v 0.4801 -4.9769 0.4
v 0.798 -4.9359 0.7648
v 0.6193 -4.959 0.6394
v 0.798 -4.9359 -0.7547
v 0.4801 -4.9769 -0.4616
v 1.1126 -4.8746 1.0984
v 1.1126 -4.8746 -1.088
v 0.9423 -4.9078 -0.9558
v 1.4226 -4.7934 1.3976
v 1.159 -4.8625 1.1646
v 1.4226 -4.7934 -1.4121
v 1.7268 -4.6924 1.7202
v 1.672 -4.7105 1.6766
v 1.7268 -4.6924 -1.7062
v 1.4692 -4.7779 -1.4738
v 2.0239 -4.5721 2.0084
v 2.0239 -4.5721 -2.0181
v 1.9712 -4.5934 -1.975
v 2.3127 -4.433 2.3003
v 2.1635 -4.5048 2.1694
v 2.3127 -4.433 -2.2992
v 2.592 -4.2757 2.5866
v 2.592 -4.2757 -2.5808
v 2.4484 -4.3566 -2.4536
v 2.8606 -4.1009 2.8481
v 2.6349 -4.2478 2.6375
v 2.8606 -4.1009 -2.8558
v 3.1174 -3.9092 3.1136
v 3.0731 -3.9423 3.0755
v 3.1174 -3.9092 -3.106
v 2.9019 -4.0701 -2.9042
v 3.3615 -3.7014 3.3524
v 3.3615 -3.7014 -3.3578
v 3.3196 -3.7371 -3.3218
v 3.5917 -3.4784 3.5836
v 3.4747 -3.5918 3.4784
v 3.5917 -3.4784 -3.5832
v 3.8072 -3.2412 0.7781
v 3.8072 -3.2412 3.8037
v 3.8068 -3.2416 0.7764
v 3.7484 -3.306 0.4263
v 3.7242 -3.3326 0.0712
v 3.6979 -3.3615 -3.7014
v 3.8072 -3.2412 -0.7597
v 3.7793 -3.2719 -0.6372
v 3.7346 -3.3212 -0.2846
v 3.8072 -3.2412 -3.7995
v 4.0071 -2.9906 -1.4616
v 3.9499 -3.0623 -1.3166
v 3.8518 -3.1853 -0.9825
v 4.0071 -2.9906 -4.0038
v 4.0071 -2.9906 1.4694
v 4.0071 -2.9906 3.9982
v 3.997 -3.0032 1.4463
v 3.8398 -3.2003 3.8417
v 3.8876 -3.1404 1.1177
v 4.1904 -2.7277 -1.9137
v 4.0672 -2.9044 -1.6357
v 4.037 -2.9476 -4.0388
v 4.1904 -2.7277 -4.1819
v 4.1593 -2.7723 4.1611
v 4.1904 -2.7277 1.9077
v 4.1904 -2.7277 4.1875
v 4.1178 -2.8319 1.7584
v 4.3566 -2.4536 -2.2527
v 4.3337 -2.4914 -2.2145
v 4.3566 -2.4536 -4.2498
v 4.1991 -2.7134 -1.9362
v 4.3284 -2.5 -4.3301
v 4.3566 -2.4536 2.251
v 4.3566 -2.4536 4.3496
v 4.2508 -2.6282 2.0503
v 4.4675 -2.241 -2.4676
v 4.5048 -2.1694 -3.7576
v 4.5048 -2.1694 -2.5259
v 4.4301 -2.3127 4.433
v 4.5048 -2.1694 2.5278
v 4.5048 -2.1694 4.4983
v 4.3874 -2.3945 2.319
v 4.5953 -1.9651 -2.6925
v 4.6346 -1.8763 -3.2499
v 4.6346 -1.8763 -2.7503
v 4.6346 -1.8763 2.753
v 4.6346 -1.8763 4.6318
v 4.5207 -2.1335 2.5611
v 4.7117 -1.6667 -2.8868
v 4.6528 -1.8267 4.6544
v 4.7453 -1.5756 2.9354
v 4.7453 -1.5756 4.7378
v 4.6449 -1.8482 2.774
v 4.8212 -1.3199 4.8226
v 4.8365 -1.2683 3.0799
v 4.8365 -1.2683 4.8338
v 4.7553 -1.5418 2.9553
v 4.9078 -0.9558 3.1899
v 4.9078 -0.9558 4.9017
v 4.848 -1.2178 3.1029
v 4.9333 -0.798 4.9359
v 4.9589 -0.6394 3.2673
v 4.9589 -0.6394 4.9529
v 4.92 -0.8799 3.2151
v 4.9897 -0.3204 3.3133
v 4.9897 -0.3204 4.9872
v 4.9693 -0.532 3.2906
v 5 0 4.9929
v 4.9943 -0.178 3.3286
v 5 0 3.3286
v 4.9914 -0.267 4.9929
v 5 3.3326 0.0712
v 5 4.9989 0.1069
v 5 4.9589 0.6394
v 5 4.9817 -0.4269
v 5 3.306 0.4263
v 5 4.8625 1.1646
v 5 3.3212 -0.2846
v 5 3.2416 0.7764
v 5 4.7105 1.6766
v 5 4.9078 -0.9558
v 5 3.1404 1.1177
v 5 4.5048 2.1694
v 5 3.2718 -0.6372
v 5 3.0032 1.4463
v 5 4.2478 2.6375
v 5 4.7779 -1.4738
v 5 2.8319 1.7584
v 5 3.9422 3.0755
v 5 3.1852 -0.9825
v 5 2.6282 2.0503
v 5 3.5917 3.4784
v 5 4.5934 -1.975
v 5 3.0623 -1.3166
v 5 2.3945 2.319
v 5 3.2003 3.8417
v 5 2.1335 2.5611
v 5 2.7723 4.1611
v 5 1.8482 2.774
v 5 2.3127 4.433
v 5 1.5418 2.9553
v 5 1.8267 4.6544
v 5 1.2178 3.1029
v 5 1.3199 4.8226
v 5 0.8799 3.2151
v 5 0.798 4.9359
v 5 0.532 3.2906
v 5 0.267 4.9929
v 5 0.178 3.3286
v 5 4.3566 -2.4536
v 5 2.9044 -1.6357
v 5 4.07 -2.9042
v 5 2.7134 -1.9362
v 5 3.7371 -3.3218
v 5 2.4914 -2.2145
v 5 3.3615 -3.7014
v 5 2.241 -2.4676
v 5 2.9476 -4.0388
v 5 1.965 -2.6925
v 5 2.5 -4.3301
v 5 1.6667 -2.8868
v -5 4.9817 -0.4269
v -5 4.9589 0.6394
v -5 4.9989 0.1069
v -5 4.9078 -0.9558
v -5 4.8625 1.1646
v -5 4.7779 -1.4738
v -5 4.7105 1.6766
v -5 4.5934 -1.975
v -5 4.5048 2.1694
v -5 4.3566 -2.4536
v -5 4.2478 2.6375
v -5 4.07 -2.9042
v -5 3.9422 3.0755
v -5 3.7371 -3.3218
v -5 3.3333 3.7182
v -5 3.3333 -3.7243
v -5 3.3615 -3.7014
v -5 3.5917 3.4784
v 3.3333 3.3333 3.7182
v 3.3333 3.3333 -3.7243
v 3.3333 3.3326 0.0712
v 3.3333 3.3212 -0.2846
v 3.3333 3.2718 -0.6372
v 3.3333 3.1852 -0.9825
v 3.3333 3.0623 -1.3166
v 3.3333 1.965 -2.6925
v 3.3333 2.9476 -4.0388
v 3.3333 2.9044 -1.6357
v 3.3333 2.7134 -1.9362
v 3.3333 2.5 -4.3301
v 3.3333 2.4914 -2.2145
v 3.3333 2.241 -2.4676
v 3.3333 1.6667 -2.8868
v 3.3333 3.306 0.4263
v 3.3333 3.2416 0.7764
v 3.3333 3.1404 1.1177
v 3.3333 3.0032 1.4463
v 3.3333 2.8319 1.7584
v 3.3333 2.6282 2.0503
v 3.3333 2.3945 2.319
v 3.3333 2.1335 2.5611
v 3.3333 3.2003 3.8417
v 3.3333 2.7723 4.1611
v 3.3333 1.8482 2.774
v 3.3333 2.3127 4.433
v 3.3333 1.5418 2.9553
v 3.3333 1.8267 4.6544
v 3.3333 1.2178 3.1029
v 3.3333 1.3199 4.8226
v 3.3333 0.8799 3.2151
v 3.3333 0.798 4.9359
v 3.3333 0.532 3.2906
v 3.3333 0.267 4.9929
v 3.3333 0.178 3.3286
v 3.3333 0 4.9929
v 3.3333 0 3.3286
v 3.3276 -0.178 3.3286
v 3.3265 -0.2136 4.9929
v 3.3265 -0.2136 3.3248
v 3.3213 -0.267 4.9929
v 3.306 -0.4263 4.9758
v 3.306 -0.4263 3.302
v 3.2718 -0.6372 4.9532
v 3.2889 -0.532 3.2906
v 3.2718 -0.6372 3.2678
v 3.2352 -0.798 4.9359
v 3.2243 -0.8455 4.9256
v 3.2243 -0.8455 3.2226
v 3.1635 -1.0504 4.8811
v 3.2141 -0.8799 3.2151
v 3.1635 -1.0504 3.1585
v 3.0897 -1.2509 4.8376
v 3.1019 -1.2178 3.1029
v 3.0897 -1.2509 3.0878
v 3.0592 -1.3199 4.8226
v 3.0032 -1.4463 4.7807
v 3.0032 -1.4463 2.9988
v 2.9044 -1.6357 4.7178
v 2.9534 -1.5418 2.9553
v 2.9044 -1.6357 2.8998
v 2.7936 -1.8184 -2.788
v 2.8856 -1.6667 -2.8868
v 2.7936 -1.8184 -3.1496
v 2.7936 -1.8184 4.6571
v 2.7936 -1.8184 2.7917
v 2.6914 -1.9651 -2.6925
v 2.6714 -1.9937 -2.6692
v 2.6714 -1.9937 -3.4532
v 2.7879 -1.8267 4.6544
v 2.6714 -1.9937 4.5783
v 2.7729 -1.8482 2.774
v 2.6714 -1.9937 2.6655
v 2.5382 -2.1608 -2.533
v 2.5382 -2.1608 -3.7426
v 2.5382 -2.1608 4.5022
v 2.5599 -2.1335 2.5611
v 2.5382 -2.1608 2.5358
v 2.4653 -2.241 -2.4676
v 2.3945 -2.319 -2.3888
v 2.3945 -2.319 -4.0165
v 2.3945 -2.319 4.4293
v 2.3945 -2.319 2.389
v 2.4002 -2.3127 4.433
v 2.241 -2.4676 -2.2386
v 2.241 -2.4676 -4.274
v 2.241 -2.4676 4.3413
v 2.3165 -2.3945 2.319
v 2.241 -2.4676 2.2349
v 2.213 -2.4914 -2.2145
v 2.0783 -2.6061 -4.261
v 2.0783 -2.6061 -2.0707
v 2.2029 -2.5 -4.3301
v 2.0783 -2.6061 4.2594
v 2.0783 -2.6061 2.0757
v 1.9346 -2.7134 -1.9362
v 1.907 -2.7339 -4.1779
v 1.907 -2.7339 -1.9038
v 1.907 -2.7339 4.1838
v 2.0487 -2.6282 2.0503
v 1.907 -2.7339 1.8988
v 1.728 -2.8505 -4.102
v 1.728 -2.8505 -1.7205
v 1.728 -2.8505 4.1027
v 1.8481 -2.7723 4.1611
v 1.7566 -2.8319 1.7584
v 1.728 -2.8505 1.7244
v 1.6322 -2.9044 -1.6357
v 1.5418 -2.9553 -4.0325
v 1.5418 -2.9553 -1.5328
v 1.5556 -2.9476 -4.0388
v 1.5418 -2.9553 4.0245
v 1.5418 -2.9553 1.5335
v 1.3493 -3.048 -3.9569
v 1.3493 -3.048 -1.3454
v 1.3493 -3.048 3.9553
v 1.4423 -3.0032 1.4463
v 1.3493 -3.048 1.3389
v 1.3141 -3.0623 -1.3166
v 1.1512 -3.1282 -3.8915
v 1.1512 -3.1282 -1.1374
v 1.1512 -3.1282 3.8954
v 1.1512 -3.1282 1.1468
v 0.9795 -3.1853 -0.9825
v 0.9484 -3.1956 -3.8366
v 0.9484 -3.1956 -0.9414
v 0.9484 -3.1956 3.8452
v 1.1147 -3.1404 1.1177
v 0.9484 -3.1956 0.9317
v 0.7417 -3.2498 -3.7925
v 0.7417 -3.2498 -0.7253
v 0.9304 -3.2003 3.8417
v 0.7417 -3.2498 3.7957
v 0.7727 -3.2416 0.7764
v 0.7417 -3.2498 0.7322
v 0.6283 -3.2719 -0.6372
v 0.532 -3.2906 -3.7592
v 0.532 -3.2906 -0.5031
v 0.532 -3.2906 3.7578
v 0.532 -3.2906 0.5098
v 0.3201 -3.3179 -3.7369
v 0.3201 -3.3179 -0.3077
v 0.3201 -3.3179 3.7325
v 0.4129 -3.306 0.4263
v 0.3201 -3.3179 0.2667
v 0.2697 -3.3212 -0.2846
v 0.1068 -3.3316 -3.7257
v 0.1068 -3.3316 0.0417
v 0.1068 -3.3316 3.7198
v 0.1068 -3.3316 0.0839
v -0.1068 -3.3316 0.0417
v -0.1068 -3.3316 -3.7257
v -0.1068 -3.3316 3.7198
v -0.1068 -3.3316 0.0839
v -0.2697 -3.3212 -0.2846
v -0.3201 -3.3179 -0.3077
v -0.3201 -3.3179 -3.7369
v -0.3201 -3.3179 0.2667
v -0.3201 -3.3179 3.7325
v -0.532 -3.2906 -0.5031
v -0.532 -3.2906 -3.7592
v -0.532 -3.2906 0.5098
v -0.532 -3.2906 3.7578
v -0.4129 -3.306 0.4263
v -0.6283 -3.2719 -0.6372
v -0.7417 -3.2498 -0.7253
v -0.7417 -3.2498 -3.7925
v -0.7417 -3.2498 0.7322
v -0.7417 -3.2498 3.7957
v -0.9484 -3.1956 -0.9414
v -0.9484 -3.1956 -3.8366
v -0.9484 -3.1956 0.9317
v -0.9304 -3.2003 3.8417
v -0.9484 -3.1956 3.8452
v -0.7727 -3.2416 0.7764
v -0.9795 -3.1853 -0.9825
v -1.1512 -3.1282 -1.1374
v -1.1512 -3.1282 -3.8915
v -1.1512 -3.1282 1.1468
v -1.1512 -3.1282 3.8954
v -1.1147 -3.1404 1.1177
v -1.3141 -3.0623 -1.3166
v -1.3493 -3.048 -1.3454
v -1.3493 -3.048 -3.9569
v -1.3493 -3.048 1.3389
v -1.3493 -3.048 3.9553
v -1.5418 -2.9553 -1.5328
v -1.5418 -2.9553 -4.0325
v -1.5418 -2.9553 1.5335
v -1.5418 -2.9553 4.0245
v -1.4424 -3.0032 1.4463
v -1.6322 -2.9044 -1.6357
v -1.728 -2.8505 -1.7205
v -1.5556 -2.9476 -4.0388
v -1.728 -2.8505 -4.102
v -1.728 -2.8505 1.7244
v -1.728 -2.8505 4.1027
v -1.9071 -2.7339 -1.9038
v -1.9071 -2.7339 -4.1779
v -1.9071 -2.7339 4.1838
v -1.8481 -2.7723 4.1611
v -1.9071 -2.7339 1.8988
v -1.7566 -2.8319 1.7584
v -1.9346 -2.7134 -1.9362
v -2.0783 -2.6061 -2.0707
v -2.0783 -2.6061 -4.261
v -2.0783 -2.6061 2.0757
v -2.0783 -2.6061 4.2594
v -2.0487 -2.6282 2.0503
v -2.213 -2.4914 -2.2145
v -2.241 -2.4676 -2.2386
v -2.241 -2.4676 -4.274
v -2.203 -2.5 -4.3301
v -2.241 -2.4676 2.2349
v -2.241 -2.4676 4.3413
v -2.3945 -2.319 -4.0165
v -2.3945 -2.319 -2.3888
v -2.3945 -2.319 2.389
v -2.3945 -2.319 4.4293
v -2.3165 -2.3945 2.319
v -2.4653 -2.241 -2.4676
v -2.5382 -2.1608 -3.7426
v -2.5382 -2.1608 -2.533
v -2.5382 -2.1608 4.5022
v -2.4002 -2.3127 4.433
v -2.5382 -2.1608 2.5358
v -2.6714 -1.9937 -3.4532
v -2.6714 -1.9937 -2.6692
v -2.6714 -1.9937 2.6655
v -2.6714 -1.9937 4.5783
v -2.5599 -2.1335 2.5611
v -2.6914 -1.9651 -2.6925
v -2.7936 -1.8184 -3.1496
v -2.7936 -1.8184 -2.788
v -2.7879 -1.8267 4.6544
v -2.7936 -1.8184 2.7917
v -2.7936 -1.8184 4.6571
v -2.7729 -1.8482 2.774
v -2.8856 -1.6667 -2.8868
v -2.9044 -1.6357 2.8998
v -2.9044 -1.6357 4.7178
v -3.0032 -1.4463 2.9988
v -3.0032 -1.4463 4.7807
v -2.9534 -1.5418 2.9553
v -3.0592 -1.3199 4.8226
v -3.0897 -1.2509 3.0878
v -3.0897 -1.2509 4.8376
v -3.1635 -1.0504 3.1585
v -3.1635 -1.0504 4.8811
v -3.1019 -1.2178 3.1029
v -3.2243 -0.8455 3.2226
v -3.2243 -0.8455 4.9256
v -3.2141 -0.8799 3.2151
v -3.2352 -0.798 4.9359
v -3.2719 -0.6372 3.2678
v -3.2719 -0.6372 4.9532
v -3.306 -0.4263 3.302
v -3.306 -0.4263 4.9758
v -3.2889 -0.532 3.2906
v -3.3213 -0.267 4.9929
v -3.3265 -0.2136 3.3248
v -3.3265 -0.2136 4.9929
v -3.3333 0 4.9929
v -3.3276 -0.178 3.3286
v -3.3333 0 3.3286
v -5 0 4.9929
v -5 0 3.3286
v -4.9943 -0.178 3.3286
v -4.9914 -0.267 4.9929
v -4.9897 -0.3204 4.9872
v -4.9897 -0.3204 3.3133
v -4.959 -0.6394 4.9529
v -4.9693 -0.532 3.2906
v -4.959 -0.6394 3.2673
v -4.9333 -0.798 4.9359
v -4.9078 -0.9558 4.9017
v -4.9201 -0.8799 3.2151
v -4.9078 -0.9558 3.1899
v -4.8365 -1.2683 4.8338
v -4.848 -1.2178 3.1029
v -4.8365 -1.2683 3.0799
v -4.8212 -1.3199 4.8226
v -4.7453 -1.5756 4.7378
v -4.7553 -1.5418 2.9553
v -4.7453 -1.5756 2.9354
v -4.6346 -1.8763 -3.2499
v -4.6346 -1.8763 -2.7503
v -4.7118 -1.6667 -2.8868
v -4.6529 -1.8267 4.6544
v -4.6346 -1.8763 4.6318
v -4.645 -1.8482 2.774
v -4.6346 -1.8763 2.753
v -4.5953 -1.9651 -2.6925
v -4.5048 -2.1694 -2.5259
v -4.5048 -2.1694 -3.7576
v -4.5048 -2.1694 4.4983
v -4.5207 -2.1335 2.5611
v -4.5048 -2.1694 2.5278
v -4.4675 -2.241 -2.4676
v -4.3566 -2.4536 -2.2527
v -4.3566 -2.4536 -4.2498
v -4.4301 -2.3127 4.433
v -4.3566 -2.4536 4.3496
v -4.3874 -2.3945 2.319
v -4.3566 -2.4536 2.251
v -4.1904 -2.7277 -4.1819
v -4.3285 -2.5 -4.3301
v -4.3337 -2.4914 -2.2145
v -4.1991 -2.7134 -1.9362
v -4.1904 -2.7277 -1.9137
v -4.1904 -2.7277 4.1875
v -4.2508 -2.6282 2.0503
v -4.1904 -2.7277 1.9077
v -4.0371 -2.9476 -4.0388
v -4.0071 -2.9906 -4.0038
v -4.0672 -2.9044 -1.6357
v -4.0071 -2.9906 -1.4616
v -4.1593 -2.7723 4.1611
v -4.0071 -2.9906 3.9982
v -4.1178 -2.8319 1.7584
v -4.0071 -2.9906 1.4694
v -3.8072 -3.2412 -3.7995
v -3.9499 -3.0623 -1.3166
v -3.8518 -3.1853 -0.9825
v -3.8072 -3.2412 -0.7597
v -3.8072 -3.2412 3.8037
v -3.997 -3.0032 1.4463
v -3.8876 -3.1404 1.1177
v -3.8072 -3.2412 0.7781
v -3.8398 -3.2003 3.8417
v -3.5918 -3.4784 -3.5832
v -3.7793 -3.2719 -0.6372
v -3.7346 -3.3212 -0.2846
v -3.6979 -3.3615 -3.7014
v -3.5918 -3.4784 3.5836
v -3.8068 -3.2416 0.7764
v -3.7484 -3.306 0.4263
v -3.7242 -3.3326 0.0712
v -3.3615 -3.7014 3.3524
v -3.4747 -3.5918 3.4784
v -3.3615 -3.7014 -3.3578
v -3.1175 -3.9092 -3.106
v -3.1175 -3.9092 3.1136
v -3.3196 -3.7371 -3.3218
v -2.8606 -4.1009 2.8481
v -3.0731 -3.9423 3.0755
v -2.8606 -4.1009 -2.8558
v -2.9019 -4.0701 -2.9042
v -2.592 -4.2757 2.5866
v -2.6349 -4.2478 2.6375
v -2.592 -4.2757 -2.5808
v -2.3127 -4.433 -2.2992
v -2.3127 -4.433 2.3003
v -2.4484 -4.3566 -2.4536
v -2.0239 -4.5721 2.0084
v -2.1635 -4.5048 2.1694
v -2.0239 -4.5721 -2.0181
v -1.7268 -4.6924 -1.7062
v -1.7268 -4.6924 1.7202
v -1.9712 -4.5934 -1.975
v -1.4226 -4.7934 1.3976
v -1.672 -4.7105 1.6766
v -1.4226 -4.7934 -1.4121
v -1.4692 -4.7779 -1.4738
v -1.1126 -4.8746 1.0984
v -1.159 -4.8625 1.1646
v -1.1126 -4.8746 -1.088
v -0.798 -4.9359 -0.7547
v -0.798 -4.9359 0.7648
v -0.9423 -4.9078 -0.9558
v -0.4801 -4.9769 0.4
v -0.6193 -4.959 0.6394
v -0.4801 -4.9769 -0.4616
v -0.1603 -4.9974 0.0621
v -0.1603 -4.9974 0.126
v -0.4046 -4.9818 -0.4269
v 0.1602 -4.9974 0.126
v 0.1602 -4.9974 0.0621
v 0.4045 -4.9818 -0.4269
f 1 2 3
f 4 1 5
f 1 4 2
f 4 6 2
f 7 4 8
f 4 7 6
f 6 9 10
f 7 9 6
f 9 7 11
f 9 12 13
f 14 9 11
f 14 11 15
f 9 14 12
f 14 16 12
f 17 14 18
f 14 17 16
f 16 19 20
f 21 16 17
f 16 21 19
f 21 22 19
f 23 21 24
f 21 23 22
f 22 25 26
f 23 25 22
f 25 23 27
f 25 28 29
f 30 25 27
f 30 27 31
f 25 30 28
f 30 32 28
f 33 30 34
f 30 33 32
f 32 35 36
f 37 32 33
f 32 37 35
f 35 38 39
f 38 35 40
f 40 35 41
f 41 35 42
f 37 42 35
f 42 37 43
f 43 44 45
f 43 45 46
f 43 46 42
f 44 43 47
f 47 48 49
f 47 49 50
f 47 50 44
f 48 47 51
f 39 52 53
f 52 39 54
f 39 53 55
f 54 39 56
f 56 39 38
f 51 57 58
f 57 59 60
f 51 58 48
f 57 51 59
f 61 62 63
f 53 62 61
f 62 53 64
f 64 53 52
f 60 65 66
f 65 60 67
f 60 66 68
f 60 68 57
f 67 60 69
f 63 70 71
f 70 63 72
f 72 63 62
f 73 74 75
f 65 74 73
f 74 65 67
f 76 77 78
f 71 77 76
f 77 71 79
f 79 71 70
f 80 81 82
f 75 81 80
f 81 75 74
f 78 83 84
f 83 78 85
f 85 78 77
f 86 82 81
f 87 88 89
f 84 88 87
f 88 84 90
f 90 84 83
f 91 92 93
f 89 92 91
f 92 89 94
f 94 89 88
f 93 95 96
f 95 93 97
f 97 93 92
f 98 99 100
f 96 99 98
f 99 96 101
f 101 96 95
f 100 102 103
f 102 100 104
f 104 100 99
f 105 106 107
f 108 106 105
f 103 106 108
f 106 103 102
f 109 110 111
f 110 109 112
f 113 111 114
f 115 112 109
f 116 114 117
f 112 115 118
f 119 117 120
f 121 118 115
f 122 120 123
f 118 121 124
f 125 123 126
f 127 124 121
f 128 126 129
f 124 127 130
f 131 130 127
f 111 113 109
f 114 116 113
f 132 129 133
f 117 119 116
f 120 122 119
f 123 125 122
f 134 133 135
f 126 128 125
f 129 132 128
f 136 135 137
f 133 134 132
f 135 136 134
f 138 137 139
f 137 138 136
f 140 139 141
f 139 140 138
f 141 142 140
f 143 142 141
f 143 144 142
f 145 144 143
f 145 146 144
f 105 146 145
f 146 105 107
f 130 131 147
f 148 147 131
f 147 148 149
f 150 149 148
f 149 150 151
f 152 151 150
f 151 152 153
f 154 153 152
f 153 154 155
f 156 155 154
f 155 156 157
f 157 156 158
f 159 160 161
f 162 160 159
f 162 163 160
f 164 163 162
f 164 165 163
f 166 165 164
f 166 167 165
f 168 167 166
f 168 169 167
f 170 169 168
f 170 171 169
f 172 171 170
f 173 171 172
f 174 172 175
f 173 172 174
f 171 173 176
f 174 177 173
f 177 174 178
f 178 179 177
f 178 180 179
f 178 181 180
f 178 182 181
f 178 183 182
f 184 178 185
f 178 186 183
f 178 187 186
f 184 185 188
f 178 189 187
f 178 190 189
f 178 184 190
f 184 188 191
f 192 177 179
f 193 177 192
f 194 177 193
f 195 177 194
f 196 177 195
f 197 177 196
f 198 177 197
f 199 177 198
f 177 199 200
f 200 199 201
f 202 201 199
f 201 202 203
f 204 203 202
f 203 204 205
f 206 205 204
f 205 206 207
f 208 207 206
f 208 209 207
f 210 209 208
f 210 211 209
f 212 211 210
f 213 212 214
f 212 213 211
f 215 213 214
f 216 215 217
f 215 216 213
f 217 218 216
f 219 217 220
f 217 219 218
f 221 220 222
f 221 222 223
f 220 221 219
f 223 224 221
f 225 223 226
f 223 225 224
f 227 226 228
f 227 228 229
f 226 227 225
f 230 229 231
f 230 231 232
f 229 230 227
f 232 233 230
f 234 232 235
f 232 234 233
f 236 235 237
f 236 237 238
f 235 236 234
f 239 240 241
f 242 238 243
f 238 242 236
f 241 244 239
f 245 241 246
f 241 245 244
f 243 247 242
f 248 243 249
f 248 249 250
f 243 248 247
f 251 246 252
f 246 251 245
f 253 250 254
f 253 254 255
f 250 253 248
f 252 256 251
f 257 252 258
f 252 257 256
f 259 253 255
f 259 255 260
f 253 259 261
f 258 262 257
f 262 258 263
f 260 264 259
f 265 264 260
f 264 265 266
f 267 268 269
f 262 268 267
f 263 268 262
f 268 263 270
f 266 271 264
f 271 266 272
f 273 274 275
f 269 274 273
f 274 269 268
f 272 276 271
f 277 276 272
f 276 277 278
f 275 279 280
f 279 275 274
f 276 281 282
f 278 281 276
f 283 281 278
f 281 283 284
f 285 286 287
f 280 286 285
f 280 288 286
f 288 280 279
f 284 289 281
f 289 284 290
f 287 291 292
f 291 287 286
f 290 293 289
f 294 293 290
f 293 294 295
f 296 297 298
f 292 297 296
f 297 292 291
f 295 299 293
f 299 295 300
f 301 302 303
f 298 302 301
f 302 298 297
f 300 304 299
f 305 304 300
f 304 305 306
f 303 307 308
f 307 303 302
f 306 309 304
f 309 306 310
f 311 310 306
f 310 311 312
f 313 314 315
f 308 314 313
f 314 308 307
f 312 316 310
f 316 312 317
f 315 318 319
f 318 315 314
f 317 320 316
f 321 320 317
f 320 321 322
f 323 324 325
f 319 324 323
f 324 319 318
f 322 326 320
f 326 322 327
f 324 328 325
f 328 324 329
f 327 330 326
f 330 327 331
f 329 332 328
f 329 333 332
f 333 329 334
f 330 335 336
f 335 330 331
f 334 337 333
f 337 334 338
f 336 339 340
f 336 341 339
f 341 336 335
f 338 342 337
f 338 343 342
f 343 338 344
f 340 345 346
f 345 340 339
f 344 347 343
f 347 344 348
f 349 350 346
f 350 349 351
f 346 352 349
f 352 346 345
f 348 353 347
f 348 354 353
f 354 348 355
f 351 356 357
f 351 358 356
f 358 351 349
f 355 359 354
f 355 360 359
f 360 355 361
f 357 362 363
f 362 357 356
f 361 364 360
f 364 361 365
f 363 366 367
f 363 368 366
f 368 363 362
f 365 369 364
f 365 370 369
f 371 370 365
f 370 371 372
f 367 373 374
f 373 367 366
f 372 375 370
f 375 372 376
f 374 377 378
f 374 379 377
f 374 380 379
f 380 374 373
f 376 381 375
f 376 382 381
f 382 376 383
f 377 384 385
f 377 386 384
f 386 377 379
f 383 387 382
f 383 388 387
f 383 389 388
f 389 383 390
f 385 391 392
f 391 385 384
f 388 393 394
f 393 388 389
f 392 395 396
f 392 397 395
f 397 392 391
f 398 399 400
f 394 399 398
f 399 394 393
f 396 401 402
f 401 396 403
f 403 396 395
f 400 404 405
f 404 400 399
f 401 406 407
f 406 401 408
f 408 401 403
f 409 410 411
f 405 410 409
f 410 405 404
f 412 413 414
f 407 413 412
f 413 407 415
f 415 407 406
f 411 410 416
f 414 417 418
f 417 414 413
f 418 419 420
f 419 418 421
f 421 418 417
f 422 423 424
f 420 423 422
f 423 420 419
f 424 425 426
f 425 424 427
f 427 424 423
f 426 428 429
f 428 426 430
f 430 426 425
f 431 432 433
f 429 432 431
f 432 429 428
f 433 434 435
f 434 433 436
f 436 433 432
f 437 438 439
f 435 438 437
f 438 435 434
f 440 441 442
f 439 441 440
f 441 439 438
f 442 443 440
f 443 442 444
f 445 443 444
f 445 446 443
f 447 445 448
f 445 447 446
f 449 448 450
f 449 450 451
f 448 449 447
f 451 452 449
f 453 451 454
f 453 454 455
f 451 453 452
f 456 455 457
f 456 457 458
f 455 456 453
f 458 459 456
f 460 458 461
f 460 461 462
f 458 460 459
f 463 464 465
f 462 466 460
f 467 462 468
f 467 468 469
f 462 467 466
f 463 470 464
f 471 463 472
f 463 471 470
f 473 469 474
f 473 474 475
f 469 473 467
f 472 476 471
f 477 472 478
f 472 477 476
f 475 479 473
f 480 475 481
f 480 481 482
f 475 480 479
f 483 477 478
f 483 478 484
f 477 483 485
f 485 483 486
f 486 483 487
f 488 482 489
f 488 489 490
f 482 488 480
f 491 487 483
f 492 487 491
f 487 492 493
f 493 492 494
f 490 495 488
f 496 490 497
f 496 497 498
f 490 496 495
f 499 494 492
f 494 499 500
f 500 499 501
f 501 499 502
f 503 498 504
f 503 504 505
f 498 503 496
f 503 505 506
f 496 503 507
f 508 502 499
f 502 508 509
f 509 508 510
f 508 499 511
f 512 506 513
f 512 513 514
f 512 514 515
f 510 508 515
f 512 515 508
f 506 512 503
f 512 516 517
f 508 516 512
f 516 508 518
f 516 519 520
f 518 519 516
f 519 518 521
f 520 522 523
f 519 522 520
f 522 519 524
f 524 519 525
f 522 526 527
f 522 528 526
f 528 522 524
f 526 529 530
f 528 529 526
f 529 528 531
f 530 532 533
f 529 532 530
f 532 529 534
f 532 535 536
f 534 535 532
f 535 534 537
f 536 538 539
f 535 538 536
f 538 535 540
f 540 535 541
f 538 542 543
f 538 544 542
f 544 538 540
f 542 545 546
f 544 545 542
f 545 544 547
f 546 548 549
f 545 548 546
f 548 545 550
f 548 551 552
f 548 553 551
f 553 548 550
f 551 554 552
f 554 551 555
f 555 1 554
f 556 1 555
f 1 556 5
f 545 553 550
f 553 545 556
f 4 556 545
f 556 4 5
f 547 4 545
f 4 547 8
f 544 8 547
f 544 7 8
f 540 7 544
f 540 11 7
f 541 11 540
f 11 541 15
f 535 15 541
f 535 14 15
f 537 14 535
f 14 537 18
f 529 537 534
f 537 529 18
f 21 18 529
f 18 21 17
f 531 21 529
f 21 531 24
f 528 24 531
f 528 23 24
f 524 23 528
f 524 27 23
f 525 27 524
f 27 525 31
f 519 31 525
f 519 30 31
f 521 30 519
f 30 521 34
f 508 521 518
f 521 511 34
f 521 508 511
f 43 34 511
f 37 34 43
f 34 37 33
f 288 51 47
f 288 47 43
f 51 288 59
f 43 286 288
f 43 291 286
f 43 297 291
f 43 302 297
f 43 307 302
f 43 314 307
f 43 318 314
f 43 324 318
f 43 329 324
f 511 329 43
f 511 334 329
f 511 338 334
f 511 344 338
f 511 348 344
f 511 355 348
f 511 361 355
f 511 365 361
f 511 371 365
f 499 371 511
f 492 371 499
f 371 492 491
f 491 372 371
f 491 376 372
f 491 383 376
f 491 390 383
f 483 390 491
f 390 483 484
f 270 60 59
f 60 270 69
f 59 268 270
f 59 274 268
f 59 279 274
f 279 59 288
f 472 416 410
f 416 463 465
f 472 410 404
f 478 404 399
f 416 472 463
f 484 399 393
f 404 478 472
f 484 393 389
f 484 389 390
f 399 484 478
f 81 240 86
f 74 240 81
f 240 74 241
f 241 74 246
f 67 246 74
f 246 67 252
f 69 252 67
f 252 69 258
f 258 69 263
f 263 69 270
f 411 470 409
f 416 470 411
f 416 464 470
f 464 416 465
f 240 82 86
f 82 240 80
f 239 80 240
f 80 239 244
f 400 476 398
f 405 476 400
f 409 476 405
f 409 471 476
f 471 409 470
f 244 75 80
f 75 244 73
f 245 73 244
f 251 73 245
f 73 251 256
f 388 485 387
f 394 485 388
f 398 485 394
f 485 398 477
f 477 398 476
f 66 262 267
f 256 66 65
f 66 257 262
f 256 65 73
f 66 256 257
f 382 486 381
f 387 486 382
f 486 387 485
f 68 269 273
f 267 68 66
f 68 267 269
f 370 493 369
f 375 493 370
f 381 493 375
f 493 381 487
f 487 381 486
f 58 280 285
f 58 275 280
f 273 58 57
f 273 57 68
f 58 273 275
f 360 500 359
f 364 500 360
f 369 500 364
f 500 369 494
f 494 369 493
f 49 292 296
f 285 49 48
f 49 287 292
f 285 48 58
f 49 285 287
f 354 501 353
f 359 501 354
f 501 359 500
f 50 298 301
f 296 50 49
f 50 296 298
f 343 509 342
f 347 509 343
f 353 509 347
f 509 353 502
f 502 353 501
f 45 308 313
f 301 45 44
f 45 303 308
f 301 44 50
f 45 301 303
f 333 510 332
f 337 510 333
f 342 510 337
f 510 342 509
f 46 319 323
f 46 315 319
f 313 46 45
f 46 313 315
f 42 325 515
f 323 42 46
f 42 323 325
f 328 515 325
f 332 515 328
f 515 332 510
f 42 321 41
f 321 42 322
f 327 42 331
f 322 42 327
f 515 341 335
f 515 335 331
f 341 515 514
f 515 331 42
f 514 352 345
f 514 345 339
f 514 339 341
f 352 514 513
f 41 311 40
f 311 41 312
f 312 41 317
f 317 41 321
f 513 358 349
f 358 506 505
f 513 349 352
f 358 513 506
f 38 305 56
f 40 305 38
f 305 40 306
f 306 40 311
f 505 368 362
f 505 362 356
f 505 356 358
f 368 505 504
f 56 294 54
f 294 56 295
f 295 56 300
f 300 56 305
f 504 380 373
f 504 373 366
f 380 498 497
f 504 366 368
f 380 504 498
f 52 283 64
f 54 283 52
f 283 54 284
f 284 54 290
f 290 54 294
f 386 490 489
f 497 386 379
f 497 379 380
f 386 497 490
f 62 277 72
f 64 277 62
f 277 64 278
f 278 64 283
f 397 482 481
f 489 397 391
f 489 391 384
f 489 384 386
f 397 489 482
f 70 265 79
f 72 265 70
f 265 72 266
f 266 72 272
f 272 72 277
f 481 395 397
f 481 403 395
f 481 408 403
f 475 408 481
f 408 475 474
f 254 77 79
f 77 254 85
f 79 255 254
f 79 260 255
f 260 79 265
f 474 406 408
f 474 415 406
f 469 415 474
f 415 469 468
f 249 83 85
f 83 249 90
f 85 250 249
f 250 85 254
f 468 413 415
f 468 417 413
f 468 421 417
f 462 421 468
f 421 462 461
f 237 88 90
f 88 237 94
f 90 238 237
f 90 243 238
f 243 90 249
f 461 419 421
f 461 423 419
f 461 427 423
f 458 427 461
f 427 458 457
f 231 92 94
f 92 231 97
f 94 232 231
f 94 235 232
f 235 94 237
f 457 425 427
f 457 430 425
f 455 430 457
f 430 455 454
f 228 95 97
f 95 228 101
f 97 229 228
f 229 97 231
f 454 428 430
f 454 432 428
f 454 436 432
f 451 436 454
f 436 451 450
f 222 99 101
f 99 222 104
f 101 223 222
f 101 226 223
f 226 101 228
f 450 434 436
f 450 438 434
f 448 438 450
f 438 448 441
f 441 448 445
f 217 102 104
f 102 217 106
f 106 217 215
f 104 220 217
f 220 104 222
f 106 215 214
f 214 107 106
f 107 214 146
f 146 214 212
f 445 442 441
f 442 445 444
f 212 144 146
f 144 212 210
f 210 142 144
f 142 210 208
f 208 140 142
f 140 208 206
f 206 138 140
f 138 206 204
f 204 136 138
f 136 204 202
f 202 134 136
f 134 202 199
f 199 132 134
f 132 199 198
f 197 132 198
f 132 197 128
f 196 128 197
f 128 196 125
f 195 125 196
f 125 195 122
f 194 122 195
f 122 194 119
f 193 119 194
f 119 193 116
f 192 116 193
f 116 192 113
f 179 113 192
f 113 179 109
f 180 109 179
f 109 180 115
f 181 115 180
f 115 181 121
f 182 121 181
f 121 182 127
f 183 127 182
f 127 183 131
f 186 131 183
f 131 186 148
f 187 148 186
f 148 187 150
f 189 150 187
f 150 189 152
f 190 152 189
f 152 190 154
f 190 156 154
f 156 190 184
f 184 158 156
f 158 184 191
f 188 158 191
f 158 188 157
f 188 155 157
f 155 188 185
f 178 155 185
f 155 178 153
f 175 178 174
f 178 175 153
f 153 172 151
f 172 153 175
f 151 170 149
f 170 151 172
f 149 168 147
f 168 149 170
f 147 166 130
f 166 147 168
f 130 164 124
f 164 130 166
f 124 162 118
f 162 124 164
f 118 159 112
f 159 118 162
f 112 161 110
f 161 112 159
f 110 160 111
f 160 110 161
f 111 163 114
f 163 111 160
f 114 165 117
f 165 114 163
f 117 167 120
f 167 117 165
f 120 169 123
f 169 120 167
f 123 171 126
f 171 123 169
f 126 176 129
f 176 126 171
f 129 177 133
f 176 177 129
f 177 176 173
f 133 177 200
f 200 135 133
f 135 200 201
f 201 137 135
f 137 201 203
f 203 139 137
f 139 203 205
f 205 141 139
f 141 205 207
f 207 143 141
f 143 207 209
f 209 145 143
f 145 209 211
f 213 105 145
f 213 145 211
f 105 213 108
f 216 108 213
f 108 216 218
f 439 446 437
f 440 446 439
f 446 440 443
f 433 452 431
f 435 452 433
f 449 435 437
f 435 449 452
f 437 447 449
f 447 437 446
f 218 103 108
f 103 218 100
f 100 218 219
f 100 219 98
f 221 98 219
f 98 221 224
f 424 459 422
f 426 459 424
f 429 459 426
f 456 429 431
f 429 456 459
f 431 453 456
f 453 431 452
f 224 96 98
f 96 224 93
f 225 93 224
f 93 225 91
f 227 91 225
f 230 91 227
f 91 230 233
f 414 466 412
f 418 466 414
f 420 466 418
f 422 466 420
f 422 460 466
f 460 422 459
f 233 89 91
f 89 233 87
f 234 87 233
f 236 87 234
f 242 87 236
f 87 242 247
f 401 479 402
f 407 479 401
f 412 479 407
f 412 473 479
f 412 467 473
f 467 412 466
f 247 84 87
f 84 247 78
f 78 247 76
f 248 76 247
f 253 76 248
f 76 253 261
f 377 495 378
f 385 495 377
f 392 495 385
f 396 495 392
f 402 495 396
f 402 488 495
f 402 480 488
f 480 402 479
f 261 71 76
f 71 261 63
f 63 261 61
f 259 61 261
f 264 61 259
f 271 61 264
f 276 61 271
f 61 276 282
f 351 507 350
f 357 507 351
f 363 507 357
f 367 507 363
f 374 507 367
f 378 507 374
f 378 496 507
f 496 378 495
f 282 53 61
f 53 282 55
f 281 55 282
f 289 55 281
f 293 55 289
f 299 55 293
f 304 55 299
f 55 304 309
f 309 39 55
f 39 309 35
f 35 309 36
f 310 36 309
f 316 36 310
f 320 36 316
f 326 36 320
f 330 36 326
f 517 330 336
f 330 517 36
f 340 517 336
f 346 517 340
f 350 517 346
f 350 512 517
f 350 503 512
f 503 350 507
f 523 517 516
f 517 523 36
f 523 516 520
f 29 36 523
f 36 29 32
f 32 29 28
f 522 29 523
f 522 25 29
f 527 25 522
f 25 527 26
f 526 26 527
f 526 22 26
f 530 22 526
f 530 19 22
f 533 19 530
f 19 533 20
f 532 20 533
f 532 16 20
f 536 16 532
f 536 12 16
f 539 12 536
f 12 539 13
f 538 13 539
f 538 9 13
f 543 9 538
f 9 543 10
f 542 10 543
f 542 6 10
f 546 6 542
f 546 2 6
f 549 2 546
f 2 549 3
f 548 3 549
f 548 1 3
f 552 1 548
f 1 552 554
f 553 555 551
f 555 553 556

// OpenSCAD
// Generated by SolidPython 1.1.3 on 2025-02-22 16:50:53
$fn=50;


intersection() {
	translate(v = [-5.0000000000, -5.0000000000, -5.0000000000]) {
		linear_extrude(height = 10) {
			polygon(points = [[8.3333333333, 5.0000000000], [8.3264846425, 4.7864326001], [8.3059667127, 4.5737427944], [8.2718638566, 4.3628045710], [8.2243162101, 4.1544847203], [8.1635191567, 3.9496392733], [8.0897225245, 3.7491099837], [8.0032295597, 3.5537208696], [7.9043956804, 3.3642748267], [7.7936270163, 3.1815503293], [7.6713787396, 3.0062982317], [7.5381531946, 2.8392386823], [7.3944978337, 2.6810581647], [7.2410029675, 2.5324066764], [7.0782993395, 2.3938950584], [6.9070555337, 2.2660924847], [6.7279752277, 2.1495241233], [6.5417943008, 2.0446689788], [6.3492778104, 1.9519579233], [6.1512168481, 1.8717719265], [5.9484252888, 1.8044404899], [5.7417364465, 1.7502402927], [5.5319996501, 1.7093940553], [5.3200767530, 1.6820696235], [5.1068385919, 1.6683792793], [4.8931614081, 1.6683792793], [4.6799232470, 1.6820696235], [4.4680003499, 1.7093940553], [4.2582635535, 1.7502402927], [4.0515747112, 1.8044404899], [3.8487831519, 1.8717719265], [3.6507221896, 1.9519579233], [3.4582056992, 2.0446689788], [3.2720247723, 2.1495241233], [3.0929444663, 2.2660924847], [2.9217006605, 2.3938950584], [2.7589970325, 2.5324066764], [2.6055021663, 2.6810581647], [2.4618468054, 2.8392386823], [2.3286212604, 3.0062982317], [2.2063729837, 3.1815503293], [2.0956043196, 3.3642748267], [1.9967704403, 3.5537208696], [1.9102774755, 3.7491099837], [1.8364808433, 3.9496392733], [1.7756837899, 4.1544847203], [1.7281361434, 4.3628045710], [1.6940332873, 4.5737427944], [1.6735153575, 4.7864326001], [1.6666666667, 5.0000000000], [0.0000000000, 5.0000000000], [0.0102730362, 4.6796489001], [0.0410499309, 4.3606141916], [0.0922042150, 4.0442068565], [0.1635256848, 3.7317270805], [0.2547212649, 3.4244589099], [0.3654162133, 3.1236649756], [0.4951556605, 2.8305813044], [0.6434064794, 2.5464122400], [0.8095594755, 2.2723254939], [0.9929318907, 2.0094473475], [1.1927702082, 1.7588580235], [1.4082532495, 1.5215872470], [1.6384955487, 1.2986100146], [1.8825509907, 1.0908425877], [2.1394166994, 0.8991387270], [2.4080371584, 0.7242861850], [2.6873085488, 0.5670034681], [2.9760832844, 0.4279368849], [3.2731747279, 0.3076578898], [3.5773620668, 0.2066607348], [3.8873953302, 0.1253604391], [4.2020005248, 0.0640910829], [4.5198848705, 0.0231044353], [4.8397421121, 0.0025689190], [5.1602578879, 0.0025689190], [5.4801151295, 0.0231044353], [5.7979994752, 0.0640910829], [6.1126046698, 0.1253604391], [6.4226379332, 0.2066607348], [6.7268252721, 0.3076578898], [7.0239167156, 0.4279368849], [7.3126914512, 0.5670034681], [7.5919628416, 0.7242861850], [7.8605833006, 0.8991387270], [8.1174490093, 1.0908425877], [8.3615044513, 1.2986100146], [8.5917467505, 1.5215872470], [8.8072297918, 1.7588580235], [9.0070681093, 2.0094473475], [9.1904405245, 2.2723254939], [9.3565935206, 2.5464122400], [9.5048443395, 2.8305813044], [9.6345837867, 3.1236649756], [9.7452787351, 3.4244589099], [9.8364743152, 3.7317270805], [9.9077957850, 4.0442068565], [9.9589500691, 4.3606141916], [9.9897269638, 4.6796489001], [10.0000000000, 5.0000000000], [10, 10], [0, 10], [0, 8.3333333333], [8.3333333333, 8.3333333333]]);
		}
	}
	rotate(a = 90, v = [0, 1, 0]) {
		translate(v = [-5.0000000000, -5.0000000000, -5.0000000000]) {
			linear_extrude(height = 10) {
				polygon(points = [[9.3301270189, 7.5000000000], [9.0387948484, 7.9475644476], [8.7013899854, 8.3615044513], [8.3217613875, 8.7370979763], [7.9042396813, 9.0700604263], [7.4535877600, 9.3565935206], [6.9749464512, 9.5934286231], [6.4737758721, 9.7778640289], [5.9557931435, 9.9077957850], [5.4269071715, 9.9817416901], [4.8931512411, 9.9988582039], [4.3606141916, 9.9589500691], [3.8353709579, 9.8624725392], [3.3234132705, 9.7105261849], [2.8305813044, 9.5048443395], [2.3624970575, 9.2477733259], [1.9245002169, 8.9422456905], [1.5215872470, 8.5917467505], [1.1583543913, 8.2002748347], [0.8389452414, 7.7722956725], [0.5670034681, 7.3126914512], [0.3456312568, 6.8267051218], [0.1773539185, 6.3198805903], [0.0640910829, 5.7979994752], [0.0071347997, 5.2670151533], [0.0071347997, 4.7329848467], [0.0640910829, 4.2020005248], [0.1773539185, 3.6801194097], [0.3456312568, 3.1732948782], [0.5670034681, 2.6873085488], [0.8389452414, 2.2277043275], [1.1583543913, 1.7997251653], [1.5215872470, 1.4082532495], [1.9245002169, 1.0577543095], [2.3624970575, 0.7522266741], [2.8305813044, 0.4951556605], [3.3234132705, 0.2894738151], [3.8353709579, 0.1375274608], [4.3606141916, 0.0410499309], [4.8931512411, 0.0011417961], [5.4269071715, 0.0182583099], [5.9557931435, 0.0922042150], [6.4737758721, 0.2221359711], [6.9749464512, 0.4065713769], [7.4535877600, 0.6434064794], [7.9042396813, 0.9299395737], [8.3217613875, 1.2629020237], [8.7013899854, 1.6384955487], [9.0387948484, 2.0524355524], [9.3301270189, 2.5000000000], [7.8867513459, 3.3333333333], [7.6925298989, 3.0349570350], [7.4675933236, 2.7589970325], [7.2145075917, 2.5086013491], [6.9361597875, 2.2866263825], [6.6357251733, 2.0956043196], [6.3166309674, 1.9377142513], [5.9825172480, 1.8147573140], [5.6371954290, 1.7281361434], [5.2846047810, 1.6788388733], [4.9287674940, 1.6674278641], [4.5737427944, 1.6940332873], [4.2235806386, 1.7583516405], [3.8822755137, 1.8596492101], [3.5537208696, 1.9967704403], [3.2416647050, 2.1681511161], [2.9496668113, 2.3718362063], [2.6810581647, 2.6055021663], [2.4389029276, 2.8664834436], [2.2259634943, 3.1518028850], [2.0446689788, 3.4582056992], [1.8970875045, 3.7821965854], [1.7849026123, 4.1200796064], [1.7093940553, 4.4680003499], [1.6714231998, 4.8219898978], [1.6714231998, 5.1780101022], [1.7093940553, 5.5319996501], [1.7849026123, 5.8799203936], [1.8970875045, 6.2178034146], [2.0446689788, 6.5417943008], [2.2259634943, 6.8481971150], [2.4389029276, 7.1335165564], [2.6810581647, 7.3944978337], [2.9496668113, 7.6281637937], [3.2416647050, 7.8318488839], [3.5537208696, 8.0032295597], [3.8822755137, 8.1403507899], [4.2235806386, 8.2416483595], [4.5737427944, 8.3059667127], [4.9287674940, 8.3325721359], [5.2846047810, 8.3211611267], [5.6371954290, 8.2718638566], [5.9825172480, 8.1852426860], [6.3166309674, 8.0622857487], [6.6357251733, 7.9043956804], [6.9361597875, 7.7133736175], [7.2145075917, 7.4913986509], [7.4675933236, 7.2410029675], [7.6925298989, 6.9650429650], [7.8867513459, 6.6666666667]]);
			}
		}
	}
}
/***********************************************
*********      SolidPython code:      **********
************************************************
 
from solid import *
from solid.utils import *

import math
import matplotlib.pyplot as plt
import subprocess
import os
import pdb

def arc_points(radius, start_angle, end_angle, center=[0,0], num_points=50):
    angles = [start_angle + i * (end_angle - start_angle) / (num_points - 1)
              for i in range(num_points)]
    points = [
        (center[0] + radius * math.cos(math.radians(angle)),
         center[1] + radius * math.sin(math.radians(angle)))
        for angle in angles
    ]
    return points

class Hole:
    def __init__(self, radius, x, y):
        """
        Hole defined by:
        :param x: x dimension for center point of the circle as a ratio of letter height
        :param y: y dimension for center point of the circle as a ratio of letter height
        :param radius: radius of circle as a ratio of letter height
        """
        self.x = x
        self.y = y
        self.radius = radius

class Letter2D:
    def __init__(self, letter, scale):
        self.letter = letter
        self.scale = scale
        self.shape = self.generate()


    def get_letter_points(self):
        points = []
        if self.letter == "A":
            points = [(0,0), (1/2, 1), (1, 0), (5/6, 0), (2/3, 1/3), (1/3, 1/3), (1/6, 0)]
        if self.letter == "B":
            top_arc_points = arc_points(1/4, 90, -90, center=[3/4, 3/4])
            bottom_arc_points = arc_points(1/4, 90, -90, center=[3/4, 1/4])
            other_points = [(0,0),(0,1)]
            points = top_arc_points + bottom_arc_points + other_points
        if self.letter == "C":
            outer_arc_points = arc_points(1/2, 30, 330, center=[1/2,1/2])
            inner_arc_points = arc_points(1/3, 30, 330, center=[1/2,1/2])[::-1]
            points = outer_arc_points + inner_arc_points
        if self.letter == "D":
            outer_arc_points = arc_points(1/2, 90, -90, center= [1/2, 1/2])
            points = outer_arc_points + [(0,0), (0, 1)]
        if self.letter == "E":
            points = [(0,0), (1,0), (1,1/5), (1/5,1/5), (1/5,2/5), (3/4,2/5), (3/4,3/5), (1/5,3/5), (1/5,4/5), (1,4/5), (1,1), (0,1)]
        if self.letter == "F":
            points = [(0,0), (1/5,0), (1/5,2/5), (3/4,2/5), (3/4,3/5), (1/5,3/5), (1/5,4/5), (1,4/5), (1,1), (0,1)]
        if self.letter == "H":
            points = [(0, 0), (0, 1), (1/6, 1), (1/6, 7/12), (5/6, 7/12), (5/6, 1), (1, 1), (1, 0), (5/6, 0), (5/6, 5/12), (1/6, 5/12), (1/6, 0)]
        if self.letter == "I":
            points = [(0,0), (1,0), (1,1/6), (7/12,1/6), (7/12,5/6), (1,5/6), (1,1), (0,1), (0,5/6), (5/12,5/6), (5/12,1/6), (0,1/6)]
        if self.letter == "J":
            inner_arc = arc_points(1/3, 360, 180, [1/2,1/2])
            outer_arc = arc_points(1/2, 180, 360, [1/2,1/2])
            other_points = [(1,1), (0,1), (0,5/6), (5/6,5/6)]
            points = inner_arc + outer_arc + other_points

        scaled_points = [(p[0] * self.scale, p[1] * self.scale) for p in points]
        return scaled_points
    

    def get_letter_holes(self):
        holes = []
        if self.letter == "A": 
            holes = [Hole(1/6, 1/2, 7/12)]
        if self.letter == "B":
            holes = [Hole(1/6, 1/2, 3/4), Hole(1/6, 1/2, 1/4)]
        if self.letter == "D":
            holes = [Hole(1/2, 1/2, 1/6)]

        scaled_holes = [Hole(hole.radius*self.scale, hole.x*self.scale, hole.y*self.scale) for hole in holes]
        return scaled_holes

    
    def generate(self):
        outer_shape_points = self.get_letter_points()
        shape = polygon(points=outer_shape_points)
        holes = self.get_letter_holes()

        if holes:
            for hole in holes:
                circle_hole = circle(r=hole.radius)
                positioned_hole = translate([hole.x, hole.y])(circle_hole)
                shape = difference()(shape, positioned_hole)
        return shape
    

    def render(self):
        scad_render_to_file(self.shape, f"output/{self.name}.scad", file_header='$fn=50;')
        subprocess.run(["C:\\Program Files\\OpenSCAD\\openscad.exe", "-o", f"output\\{self.name}.stl", f"output\\{self.name}.scad"])


class TwoLetter3D:
    def __init__(self, height, letterA, letterB=None):
        self.height = height
        self.letterA = letterA
        self.letterB = letterB
    

    def generate_3d_letter(self, letter):
        letter = letter.upper()
        # TODO: add catch here for is letter is not a letter
        shape = Letter2D(letter, self.height).generate()
        shape_3d = linear_extrude(height=self.height)(shape)
        centered_shape_3d = translate([-self.height/2, -self.height/2, -self.height/2])(shape_3d)
        return centered_shape_3d


    def render(self):
        letterA3D = self.generate_3d_letter(self.letterA)

        if self.letterB:
            letterB3D = self.generate_3d_letter(self.letterB)
            letterB3D = rotate(a=90, v=[0,1,0])(letterB3D)

            combined = intersection()(letterA3D, letterB3D)
            file_name = self.letterA + self.letterB
            scad_render_to_file(combined, f"output/{file_name}.scad", file_header='$fn=50;')
            subprocess.run(["C:\\Program Files\\OpenSCAD\\openscad.exe", "-o", f"output\\{file_name}.stl", f"output\\{file_name}.scad"])
            return
        else:
            file_name = self.letterA
            scad_render_to_file(letterA3D, f"output/{file_name}.scad", file_header='$fn=50;')
            subprocess.run(["C:\\Program Files\\OpenSCAD\\openscad.exe", "-o", f"output\\{file_name}.stl", f"output\\{file_name}.scad"])
            return
                


if __name__ == "__main__":
    os.makedirs("output", exist_ok=True)

        # # Generate a letter
    shape = TwoLetter3D(10, "J", "C")
    shape.render()
    
    letters = [chr(x) for x in range(ord('A'), ord('H') + 1)]

    # # Generate all combos
    # for letter in letters:
    #     for other_letter in letters:
    #         shape = TwoLetter3D(10, letter, other_letter)
    #         shape.render()

    # # Generate all letters
    # for letter in letters:
    #     shape = TwoLetter3D(10, letter, "z")
 
 
************************************************/
